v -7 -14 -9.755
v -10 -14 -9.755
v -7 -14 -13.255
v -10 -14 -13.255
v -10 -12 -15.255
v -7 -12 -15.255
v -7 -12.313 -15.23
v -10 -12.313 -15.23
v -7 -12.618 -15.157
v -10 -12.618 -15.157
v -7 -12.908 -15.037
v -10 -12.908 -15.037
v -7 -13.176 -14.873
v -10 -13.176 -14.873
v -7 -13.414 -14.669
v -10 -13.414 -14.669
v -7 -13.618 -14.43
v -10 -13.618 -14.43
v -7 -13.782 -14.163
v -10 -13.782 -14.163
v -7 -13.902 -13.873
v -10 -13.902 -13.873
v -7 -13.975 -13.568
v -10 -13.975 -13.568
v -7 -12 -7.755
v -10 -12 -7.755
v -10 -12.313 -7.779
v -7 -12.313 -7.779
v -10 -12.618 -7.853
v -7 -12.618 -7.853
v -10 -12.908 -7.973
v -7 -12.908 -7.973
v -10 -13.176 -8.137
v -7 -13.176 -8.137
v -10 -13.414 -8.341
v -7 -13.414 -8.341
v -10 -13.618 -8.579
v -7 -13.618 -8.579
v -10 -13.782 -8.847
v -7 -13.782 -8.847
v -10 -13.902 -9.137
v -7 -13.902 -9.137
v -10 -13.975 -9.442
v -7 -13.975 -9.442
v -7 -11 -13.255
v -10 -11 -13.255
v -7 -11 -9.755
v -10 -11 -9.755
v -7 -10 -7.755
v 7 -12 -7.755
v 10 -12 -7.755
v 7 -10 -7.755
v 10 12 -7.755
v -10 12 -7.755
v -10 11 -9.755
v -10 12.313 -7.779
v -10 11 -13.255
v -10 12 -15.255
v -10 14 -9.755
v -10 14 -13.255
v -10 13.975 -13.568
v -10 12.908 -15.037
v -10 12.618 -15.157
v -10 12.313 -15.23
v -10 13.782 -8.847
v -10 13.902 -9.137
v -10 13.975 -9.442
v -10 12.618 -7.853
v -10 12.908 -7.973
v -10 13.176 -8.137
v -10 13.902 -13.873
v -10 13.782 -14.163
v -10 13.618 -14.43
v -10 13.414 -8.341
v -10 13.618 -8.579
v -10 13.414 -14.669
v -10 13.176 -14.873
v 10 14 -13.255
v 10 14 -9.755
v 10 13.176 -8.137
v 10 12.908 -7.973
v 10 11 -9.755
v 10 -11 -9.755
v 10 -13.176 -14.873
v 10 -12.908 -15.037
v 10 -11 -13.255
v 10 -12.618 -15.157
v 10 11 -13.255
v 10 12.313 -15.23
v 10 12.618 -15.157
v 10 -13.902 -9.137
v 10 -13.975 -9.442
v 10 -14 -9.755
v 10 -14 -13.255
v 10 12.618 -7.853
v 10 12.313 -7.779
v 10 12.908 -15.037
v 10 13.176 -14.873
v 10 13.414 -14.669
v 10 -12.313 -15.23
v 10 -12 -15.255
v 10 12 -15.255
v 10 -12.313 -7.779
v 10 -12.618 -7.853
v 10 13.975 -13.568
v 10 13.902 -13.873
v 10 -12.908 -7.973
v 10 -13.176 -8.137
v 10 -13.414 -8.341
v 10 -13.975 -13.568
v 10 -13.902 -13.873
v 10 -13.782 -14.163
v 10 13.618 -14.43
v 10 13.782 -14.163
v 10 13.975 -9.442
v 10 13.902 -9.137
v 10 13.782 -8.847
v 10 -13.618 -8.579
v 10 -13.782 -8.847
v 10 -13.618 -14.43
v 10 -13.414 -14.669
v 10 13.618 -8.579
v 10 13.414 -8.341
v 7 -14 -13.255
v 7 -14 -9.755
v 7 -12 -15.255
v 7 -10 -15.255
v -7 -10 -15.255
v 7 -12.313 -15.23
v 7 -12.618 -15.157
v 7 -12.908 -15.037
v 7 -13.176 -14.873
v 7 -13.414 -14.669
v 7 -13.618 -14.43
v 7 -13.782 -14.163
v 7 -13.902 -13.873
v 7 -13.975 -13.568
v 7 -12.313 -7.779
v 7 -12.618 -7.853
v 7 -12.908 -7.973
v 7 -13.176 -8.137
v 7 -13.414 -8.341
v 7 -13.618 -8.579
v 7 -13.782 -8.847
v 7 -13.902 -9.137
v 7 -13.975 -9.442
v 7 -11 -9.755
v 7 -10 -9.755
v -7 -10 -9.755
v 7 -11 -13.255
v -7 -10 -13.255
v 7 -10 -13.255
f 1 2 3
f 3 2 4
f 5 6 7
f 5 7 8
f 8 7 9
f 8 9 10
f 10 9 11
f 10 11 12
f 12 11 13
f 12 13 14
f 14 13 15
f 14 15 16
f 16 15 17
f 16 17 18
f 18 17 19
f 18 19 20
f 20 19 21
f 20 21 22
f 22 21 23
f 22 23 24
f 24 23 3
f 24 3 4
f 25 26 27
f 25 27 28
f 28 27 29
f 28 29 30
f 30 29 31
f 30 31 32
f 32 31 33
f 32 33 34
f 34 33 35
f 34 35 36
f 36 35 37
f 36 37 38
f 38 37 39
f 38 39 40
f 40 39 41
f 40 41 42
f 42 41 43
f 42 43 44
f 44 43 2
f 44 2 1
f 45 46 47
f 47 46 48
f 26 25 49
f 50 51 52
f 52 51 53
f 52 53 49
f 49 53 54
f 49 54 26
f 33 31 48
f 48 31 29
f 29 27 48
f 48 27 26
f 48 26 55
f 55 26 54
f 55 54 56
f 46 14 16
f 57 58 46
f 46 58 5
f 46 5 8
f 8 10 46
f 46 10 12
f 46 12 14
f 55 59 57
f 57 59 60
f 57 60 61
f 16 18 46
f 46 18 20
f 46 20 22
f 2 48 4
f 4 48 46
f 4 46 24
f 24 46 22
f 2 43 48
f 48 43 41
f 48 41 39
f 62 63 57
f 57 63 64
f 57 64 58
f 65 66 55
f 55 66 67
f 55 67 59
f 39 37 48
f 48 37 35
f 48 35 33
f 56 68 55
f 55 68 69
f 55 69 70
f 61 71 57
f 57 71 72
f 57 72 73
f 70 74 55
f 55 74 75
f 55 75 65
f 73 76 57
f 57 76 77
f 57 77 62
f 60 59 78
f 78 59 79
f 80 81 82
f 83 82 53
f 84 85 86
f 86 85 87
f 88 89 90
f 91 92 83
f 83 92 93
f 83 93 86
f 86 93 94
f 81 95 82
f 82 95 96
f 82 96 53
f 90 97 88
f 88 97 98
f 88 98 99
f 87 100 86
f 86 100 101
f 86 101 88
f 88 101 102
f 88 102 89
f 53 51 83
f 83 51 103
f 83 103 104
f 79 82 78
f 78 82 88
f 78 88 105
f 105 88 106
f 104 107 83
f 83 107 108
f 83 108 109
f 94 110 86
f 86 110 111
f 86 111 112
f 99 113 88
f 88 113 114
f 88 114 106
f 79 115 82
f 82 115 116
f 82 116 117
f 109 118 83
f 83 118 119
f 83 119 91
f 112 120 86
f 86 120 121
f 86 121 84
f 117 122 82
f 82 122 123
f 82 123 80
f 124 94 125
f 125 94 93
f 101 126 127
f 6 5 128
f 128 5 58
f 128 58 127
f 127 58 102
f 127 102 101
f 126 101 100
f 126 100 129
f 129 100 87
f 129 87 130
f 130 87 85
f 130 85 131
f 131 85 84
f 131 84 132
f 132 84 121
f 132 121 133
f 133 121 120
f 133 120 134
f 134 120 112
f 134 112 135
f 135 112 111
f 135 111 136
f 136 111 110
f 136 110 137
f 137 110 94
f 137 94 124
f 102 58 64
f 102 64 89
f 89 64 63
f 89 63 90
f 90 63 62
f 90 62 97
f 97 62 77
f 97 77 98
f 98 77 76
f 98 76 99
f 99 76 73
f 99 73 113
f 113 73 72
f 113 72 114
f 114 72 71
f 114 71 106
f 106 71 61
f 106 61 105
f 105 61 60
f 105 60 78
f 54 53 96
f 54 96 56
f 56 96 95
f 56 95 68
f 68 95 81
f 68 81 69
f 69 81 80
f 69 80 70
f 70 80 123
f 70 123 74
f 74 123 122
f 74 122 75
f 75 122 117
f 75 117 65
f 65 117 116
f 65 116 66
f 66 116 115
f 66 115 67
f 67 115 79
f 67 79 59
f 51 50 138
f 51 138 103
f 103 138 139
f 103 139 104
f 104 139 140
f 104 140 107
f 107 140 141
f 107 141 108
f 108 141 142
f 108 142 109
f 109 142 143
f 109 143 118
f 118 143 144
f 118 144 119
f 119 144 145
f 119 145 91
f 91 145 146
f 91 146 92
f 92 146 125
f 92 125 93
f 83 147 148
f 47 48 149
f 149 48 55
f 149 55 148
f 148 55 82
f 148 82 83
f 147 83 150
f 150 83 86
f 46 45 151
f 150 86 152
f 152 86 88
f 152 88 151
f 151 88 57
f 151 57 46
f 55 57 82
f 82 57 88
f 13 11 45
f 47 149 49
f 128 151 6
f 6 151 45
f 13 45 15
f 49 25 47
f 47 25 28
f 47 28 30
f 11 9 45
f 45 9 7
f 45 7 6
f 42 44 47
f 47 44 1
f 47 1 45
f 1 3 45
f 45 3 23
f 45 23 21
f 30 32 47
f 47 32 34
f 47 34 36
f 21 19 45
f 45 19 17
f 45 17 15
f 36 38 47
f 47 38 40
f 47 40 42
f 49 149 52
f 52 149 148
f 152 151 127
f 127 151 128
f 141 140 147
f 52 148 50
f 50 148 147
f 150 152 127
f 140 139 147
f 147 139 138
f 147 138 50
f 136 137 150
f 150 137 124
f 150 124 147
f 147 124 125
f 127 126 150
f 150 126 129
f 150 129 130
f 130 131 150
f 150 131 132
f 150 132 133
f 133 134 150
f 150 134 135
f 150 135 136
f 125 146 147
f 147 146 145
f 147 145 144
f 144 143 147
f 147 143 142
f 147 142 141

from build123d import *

# Parameters (mm, degrees)
SKETCH2_W           = 42
SKETCH2_H           = 8.4
BOSS_EXTRUDE1_DEPTH = 2
SKETCH3_W           = 3.55
SKETCH3_H           = 8.4
SKETCH3_W_2         = 10
BOSS_EXTRUDE2_DEPTH = 2
FILLET1_R           = 2
SKETCH4_R           = 1
CUT_EXTRUDE1_DEPTH  = 2
SKETCH5_W           = 20
SKETCH5_H           = 28
BOSS_EXTRUDE3_DEPTH = 7.5
FILLET2_R           = 2
SKETCH6_W           = 3.5
SKETCH6_H           = 22
CUT_EXTRUDE2_DEPTH  = 20
SKETCH7_W           = 44.314231138
SKETCH7_H           = 10.974489351
CUT_EXTRUDE3_DEPTH  = 4
SKETCH8_W           = 14
SKETCH8_H           = 4
CUT_EXTRUDE4_DEPTH  = 10


with BuildPart() as part:
    # Sketch2 → Boss-Extrude1 (new body)
    with BuildSketch(Plane.XY.offset(-7.754792002)):
        Rectangle(SKETCH2_W, SKETCH2_H)
    extrude(amount=BOSS_EXTRUDE1_DEPTH)

    # Sketch3 → Boss-Extrude2 (add)
    with BuildSketch(Plane.XY.offset(-5.754792002)):
        with Locations((-8.975, 0)):
            Rectangle(SKETCH3_W, SKETCH3_H)
        with Locations((8.975, 0)):
            Rectangle(SKETCH3_W, SKETCH3_H)
        Rectangle(SKETCH3_W_2, SKETCH3_H)
    extrude(amount=BOSS_EXTRUDE2_DEPTH)

    # Fillet1
    fillet1_edges = [part.edges().sort_by_distance(p)[0] for p in [
        (-21, 4.2, -6.754792002),
        (21, 4.2, -6.754792002),
        (21, -4.2, -6.754792002),
        (-21, -4.2, -6.754792002),
    ]]
    fillet(fillet1_edges, radius=FILLET1_R)

    # Sketch4 → Cut-Extrude1 (cut)
    with BuildSketch(Plane.XY.offset(-5.754792002)):
        with Locations((-17.75, 0)):
            Circle(SKETCH4_R)
        with Locations((17.75, 0)):
            Circle(SKETCH4_R)
    extrude(amount=-CUT_EXTRUDE1_DEPTH, mode=Mode.SUBTRACT)

    # Sketch5 → Boss-Extrude3 (add)
    with BuildSketch(Plane(origin=(0, 0, -7.754792002), x_dir=(-1, 0, 0), z_dir=(0, 0, -1))):
        Rectangle(SKETCH5_W, SKETCH5_H)
    extrude(amount=BOSS_EXTRUDE3_DEPTH)

    # Fillet2
    fillet2_edges = [part.edges().sort_by_distance(p)[0] for p in [
        (0, 14, -7.754792002),
        (0, -14, -7.754792002),
        (0, 14, -15.254792002),
        (0, -14, -15.254792002),
    ]]
    fillet(fillet2_edges, radius=FILLET2_R)

    # Sketch6 → Cut-Extrude2 (cut)
    with BuildSketch(Plane.ZY.offset(10)):
        with Locations((-11.504792002, 0)):
            Rectangle(SKETCH6_W, SKETCH6_H)
    extrude(amount=-CUT_EXTRUDE2_DEPTH, mode=Mode.SUBTRACT)

    # Sketch7 → Cut-Extrude3 (cut)
    with BuildSketch(Plane.XY.offset(-3.754792002)):
        with Locations((-0.219821089, -0.04579799)):
            Rectangle(SKETCH7_W, SKETCH7_H)
    extrude(amount=-CUT_EXTRUDE3_DEPTH, mode=Mode.SUBTRACT)

    # Sketch8 → Cut-Extrude4 (cut)
    with BuildSketch(Plane.XY.offset(-7.754792002)):
        with Locations((0, -12)):
            Rectangle(SKETCH8_W, SKETCH8_H)
    extrude(amount=-CUT_EXTRUDE4_DEPTH, mode=Mode.SUBTRACT)


solid = part.part
